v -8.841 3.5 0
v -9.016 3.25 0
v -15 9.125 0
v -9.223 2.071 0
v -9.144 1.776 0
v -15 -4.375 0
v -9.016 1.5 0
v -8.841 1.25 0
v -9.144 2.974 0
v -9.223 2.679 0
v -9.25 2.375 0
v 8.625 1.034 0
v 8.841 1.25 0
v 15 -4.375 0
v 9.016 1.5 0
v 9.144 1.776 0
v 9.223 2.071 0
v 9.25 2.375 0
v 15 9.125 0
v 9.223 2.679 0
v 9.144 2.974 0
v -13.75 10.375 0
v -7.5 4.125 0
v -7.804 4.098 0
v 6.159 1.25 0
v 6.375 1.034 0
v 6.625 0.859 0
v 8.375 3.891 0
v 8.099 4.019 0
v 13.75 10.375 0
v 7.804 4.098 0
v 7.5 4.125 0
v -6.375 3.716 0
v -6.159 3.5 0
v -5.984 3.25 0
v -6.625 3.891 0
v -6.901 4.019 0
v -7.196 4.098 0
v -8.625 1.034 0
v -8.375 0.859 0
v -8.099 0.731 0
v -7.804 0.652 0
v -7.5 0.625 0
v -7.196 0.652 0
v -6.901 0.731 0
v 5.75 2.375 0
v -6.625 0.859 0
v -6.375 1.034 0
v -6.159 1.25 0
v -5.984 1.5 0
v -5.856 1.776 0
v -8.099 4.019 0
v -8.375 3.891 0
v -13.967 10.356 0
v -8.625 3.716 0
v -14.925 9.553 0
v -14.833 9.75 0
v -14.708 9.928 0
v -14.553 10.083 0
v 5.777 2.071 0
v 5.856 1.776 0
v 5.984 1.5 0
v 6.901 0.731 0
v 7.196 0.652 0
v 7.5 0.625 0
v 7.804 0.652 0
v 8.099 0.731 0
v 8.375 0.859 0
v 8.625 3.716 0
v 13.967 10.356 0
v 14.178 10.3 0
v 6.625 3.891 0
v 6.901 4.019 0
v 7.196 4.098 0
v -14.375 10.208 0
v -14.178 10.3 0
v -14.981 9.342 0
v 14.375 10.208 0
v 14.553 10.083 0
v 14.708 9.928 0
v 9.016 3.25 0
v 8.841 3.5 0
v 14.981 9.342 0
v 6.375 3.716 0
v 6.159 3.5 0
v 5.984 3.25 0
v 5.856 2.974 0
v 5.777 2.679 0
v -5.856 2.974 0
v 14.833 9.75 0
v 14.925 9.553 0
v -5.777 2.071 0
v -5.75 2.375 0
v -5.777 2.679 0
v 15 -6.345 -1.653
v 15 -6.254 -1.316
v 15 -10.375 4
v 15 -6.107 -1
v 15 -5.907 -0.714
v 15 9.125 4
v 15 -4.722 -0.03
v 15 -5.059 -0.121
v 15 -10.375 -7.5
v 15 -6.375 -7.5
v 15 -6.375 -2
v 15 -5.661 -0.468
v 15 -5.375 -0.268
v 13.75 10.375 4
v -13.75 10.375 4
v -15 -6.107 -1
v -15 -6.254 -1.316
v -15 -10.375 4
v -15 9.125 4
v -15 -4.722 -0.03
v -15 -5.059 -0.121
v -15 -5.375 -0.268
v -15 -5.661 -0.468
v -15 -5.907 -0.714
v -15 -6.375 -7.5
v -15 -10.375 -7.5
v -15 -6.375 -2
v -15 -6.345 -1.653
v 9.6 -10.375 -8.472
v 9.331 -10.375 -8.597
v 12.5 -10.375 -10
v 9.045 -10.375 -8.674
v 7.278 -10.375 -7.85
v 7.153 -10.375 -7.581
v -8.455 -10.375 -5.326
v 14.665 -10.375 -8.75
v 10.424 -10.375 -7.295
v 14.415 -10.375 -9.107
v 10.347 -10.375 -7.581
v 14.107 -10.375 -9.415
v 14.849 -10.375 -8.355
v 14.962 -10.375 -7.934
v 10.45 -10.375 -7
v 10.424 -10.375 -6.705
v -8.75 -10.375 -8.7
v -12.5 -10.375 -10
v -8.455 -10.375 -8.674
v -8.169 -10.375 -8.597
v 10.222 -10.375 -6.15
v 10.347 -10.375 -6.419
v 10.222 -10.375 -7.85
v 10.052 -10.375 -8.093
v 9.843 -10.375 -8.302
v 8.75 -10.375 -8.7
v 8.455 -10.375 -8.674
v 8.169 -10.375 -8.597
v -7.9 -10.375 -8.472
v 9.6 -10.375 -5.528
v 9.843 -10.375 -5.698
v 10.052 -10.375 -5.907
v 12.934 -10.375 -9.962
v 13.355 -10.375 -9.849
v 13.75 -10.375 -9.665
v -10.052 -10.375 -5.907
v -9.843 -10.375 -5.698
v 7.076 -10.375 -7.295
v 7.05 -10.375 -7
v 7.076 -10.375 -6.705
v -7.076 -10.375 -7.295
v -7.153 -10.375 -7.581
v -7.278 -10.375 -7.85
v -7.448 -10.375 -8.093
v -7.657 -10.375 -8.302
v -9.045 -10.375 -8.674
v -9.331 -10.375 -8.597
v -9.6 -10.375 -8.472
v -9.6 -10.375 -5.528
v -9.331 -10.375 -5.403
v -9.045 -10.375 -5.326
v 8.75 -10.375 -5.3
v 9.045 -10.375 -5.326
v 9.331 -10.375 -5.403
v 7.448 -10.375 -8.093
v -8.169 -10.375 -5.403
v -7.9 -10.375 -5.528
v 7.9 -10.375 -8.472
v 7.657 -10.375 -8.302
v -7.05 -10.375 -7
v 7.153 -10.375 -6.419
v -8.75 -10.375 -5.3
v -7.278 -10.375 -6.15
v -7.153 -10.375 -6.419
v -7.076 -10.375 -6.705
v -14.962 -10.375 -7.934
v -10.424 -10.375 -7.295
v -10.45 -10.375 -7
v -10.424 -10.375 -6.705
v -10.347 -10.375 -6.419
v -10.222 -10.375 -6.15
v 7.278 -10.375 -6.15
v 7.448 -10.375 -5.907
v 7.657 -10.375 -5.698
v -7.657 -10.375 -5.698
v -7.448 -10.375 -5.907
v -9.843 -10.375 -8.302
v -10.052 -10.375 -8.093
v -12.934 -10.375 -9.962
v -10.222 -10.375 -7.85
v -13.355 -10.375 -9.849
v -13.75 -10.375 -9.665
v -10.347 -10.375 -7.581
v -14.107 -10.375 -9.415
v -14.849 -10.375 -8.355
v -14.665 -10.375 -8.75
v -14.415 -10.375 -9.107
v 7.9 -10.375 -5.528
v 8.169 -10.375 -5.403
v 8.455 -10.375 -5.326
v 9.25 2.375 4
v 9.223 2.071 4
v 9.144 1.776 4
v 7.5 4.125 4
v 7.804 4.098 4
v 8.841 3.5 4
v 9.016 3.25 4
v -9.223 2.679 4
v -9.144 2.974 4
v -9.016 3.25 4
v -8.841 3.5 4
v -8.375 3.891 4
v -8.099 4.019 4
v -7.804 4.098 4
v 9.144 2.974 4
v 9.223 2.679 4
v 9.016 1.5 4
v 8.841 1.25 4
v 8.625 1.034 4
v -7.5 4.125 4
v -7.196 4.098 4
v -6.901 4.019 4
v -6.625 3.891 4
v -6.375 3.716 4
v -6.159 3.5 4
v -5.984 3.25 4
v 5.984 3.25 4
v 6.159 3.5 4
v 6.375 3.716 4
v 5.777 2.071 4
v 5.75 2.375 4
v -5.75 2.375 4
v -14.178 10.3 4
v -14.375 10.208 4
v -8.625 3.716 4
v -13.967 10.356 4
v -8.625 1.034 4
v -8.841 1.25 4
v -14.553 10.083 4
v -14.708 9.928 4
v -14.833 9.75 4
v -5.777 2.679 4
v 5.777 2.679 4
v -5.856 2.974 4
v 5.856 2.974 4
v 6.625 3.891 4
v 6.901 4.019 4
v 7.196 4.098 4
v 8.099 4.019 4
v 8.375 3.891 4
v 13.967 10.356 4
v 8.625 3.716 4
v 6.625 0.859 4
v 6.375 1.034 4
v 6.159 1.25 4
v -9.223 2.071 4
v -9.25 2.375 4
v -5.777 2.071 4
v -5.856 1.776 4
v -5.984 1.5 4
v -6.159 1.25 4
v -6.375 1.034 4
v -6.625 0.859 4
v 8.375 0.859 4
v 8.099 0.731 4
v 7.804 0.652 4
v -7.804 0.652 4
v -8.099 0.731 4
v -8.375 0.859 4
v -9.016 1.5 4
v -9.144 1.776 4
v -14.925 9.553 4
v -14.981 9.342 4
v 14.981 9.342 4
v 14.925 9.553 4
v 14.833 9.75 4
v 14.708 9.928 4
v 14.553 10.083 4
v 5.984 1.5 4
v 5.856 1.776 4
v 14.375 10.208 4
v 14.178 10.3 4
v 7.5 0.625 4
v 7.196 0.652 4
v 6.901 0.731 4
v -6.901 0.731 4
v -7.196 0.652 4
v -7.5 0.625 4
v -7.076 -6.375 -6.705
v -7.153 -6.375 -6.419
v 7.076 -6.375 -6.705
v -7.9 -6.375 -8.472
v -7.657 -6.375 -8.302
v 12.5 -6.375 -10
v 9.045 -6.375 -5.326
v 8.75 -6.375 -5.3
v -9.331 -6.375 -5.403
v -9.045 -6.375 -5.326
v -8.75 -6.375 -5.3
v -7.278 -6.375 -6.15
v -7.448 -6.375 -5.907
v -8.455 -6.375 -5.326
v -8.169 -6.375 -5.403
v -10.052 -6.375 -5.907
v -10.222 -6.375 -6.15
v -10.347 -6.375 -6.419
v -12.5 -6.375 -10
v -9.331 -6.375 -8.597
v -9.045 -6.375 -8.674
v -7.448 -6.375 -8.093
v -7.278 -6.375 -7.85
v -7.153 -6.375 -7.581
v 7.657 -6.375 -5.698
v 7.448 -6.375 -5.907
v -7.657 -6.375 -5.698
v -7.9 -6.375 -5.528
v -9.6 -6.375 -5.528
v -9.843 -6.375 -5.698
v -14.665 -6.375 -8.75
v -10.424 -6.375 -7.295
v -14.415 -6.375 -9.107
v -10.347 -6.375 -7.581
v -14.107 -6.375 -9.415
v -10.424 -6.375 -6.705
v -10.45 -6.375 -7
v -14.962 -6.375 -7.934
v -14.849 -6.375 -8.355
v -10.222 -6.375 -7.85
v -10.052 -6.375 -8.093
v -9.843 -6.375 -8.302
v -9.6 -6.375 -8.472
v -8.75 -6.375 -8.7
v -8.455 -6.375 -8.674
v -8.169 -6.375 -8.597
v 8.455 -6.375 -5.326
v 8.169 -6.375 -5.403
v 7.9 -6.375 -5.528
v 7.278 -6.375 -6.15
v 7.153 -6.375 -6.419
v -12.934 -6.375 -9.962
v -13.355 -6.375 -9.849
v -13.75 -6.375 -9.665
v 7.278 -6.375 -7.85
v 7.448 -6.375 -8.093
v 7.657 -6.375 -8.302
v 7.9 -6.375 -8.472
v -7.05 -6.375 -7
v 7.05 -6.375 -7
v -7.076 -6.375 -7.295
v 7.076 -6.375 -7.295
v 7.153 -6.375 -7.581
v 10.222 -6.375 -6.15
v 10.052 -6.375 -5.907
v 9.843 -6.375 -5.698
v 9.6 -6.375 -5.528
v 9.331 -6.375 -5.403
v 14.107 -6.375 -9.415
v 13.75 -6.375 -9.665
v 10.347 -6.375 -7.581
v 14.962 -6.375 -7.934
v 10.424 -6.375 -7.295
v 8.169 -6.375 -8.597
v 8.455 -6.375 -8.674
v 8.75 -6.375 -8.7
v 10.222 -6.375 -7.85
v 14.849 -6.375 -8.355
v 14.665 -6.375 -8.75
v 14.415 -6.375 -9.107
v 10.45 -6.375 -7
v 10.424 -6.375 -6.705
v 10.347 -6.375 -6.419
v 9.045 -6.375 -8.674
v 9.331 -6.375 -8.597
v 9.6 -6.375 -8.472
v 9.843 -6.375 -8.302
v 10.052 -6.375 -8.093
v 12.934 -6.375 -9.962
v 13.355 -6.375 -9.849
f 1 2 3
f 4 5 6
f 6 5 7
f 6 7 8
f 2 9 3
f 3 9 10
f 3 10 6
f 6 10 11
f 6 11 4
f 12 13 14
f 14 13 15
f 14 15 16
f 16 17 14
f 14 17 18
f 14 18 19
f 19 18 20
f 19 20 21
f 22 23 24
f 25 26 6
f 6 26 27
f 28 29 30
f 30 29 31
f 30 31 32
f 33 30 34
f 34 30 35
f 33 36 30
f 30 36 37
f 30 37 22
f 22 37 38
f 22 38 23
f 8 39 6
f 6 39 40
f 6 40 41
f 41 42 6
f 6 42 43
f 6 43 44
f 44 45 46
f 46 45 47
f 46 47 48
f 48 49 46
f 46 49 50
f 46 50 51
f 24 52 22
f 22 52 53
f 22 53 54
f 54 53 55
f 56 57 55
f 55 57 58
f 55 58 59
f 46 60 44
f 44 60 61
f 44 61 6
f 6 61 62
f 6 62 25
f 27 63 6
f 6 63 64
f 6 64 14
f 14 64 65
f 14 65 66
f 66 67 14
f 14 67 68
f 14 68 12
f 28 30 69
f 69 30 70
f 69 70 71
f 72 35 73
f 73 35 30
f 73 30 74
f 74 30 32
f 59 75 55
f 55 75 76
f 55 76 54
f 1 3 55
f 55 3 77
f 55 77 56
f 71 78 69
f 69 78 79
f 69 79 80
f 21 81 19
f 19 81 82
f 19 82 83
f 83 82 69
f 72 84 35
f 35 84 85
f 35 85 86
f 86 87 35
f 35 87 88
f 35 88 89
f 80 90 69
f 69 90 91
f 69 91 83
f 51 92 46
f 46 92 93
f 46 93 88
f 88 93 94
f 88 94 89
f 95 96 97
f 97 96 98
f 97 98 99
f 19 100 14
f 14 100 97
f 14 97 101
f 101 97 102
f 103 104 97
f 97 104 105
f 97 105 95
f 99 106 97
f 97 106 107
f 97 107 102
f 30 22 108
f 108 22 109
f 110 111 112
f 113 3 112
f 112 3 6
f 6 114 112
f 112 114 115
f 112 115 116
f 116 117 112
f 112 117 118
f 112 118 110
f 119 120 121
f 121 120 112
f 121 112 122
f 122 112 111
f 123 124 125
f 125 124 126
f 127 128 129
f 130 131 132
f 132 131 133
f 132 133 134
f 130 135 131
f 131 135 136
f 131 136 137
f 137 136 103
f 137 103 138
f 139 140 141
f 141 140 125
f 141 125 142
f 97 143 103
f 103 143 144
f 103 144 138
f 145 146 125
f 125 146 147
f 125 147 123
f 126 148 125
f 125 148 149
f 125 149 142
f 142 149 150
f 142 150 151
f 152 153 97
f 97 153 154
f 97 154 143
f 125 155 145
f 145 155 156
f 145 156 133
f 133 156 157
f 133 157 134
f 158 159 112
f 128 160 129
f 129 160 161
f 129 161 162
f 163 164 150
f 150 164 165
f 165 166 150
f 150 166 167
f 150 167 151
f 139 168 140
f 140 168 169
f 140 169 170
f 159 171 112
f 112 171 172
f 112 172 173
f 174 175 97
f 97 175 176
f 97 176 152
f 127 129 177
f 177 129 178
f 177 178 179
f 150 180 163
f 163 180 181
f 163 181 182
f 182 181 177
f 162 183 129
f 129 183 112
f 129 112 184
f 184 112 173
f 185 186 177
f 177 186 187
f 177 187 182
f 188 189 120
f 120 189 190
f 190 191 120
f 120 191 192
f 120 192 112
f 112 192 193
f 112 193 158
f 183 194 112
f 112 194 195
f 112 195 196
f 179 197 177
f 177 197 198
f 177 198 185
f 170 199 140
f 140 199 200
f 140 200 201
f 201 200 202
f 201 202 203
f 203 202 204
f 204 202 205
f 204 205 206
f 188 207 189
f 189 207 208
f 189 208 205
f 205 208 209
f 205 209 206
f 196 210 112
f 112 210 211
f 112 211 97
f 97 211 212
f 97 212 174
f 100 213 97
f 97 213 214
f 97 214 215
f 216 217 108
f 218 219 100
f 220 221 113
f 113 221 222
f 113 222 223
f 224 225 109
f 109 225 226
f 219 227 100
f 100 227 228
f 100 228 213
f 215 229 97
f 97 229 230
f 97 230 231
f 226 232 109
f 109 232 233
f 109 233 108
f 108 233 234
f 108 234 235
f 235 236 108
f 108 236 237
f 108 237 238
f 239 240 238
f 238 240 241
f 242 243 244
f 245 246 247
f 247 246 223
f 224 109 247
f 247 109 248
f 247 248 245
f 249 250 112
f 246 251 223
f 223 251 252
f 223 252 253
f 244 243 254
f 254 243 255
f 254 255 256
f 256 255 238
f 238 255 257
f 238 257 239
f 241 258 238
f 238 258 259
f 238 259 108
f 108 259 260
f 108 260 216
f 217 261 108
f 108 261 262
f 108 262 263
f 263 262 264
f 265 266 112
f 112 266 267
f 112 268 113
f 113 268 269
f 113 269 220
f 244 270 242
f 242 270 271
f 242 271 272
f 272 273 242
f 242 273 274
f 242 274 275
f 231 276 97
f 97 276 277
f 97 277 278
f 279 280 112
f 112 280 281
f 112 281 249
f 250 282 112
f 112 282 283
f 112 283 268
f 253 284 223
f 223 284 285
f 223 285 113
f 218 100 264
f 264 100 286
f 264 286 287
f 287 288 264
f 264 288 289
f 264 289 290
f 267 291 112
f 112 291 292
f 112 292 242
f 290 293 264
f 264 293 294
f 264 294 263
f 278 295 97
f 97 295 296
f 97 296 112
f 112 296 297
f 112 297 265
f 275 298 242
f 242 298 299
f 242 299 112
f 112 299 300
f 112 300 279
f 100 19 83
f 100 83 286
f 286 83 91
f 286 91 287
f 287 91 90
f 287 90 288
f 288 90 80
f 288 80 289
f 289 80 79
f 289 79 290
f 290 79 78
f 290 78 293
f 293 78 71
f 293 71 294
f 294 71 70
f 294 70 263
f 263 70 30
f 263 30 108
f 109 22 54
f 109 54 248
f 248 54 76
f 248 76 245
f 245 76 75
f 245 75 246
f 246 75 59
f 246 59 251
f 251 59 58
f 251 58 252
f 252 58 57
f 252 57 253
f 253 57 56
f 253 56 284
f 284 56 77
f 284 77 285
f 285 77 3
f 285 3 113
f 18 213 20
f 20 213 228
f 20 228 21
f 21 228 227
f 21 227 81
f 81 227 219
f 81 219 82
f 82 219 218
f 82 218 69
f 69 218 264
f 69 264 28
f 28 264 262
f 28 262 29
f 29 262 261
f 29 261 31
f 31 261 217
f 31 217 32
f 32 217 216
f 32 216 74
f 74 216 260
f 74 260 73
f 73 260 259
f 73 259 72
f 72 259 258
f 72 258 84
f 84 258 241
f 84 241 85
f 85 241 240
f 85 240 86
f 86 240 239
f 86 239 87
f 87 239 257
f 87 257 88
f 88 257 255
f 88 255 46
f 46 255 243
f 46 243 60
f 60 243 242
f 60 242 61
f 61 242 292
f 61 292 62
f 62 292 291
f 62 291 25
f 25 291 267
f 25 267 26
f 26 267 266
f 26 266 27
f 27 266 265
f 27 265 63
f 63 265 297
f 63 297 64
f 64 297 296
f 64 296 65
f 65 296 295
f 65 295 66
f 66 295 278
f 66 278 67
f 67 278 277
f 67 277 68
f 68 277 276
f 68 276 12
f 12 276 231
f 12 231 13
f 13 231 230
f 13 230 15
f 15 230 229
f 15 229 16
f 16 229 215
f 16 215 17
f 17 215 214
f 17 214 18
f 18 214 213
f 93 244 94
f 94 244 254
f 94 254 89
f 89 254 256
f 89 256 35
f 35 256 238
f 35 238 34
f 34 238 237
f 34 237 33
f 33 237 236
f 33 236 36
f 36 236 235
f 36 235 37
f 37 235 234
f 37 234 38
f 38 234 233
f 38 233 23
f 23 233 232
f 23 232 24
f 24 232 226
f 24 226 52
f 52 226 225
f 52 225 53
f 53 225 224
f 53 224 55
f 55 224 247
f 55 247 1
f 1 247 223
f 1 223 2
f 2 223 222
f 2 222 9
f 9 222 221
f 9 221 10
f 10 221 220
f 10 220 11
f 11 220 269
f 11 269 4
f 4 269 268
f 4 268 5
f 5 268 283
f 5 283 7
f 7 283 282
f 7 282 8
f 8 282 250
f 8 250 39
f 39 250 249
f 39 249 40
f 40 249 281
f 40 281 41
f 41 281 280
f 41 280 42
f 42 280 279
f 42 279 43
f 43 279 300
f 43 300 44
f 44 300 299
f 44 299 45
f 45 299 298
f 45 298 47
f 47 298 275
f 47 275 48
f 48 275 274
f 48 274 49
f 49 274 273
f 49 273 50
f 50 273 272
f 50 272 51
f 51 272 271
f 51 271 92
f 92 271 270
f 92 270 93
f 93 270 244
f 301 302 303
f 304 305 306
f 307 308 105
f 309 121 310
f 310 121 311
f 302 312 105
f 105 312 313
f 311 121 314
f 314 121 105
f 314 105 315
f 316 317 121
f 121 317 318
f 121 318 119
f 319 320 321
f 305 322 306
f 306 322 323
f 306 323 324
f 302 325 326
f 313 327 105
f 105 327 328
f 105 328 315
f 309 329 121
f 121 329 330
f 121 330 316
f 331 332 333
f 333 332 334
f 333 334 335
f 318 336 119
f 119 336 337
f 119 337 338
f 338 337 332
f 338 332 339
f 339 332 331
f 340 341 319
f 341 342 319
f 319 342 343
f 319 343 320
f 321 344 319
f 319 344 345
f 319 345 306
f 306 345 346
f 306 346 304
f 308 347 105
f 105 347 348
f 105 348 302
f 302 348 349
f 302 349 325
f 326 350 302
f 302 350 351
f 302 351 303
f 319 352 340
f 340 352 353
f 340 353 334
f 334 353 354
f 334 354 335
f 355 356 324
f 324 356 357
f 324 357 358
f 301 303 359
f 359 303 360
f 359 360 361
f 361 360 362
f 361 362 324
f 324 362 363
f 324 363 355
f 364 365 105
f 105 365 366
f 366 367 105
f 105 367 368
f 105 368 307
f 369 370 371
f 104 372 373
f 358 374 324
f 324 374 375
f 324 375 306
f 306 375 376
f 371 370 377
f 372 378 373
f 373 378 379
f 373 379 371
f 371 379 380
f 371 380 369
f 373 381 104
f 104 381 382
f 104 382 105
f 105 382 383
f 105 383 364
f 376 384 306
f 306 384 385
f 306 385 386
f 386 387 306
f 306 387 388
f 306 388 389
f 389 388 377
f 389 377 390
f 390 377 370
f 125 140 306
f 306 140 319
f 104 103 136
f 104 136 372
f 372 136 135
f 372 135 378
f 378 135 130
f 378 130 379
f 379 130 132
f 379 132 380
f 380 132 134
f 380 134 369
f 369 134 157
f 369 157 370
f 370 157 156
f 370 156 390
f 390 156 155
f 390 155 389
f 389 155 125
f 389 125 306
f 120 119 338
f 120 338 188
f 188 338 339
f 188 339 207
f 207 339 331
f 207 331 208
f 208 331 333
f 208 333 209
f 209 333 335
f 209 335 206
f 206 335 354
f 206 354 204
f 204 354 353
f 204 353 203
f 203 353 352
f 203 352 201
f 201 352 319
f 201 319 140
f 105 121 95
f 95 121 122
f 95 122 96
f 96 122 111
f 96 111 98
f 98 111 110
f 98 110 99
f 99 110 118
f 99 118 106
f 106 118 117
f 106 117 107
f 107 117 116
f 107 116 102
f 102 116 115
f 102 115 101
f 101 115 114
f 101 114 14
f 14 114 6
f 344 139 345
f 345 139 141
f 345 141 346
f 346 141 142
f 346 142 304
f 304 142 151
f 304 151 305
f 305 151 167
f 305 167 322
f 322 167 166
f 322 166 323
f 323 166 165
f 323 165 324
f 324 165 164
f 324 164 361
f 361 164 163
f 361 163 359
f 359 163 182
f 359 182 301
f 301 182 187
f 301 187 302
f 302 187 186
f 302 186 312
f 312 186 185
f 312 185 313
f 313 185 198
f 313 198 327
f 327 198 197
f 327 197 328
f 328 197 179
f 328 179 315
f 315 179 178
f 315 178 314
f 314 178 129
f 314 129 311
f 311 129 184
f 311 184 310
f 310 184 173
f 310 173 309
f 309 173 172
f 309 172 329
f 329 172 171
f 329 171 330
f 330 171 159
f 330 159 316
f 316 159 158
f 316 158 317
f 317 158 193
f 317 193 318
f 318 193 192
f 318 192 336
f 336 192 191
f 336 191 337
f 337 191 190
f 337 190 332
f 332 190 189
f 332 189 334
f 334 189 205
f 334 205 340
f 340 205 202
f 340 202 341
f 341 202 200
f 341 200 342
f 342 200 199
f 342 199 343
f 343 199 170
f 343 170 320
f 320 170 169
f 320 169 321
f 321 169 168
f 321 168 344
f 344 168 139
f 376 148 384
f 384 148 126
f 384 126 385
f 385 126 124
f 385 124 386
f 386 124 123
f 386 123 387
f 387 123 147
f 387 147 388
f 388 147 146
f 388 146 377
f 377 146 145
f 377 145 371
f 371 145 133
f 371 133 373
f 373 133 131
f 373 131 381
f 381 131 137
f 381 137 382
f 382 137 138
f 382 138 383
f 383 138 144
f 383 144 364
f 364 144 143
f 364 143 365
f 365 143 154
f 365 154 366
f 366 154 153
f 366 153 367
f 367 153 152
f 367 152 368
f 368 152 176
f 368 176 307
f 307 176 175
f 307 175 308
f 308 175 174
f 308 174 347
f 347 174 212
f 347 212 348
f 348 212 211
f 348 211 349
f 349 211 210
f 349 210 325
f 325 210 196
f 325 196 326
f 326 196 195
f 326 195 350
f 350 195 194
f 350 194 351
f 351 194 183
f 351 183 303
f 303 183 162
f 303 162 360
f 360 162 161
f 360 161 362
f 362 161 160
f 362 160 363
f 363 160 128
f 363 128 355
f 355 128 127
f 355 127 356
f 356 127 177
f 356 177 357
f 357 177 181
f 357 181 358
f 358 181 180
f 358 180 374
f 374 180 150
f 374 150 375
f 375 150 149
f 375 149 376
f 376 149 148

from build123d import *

# Parameters (mm, degrees)
SKETCH1_W                = 30
SKETCH1_H                = 20.75
BOSS_EXTRUDE1_DEPTH      = 4
FILLET1_R                = 1.25
SKETCH3_R                = 1.75
CUT_EXTRUDE1_DEPTH       = 10
SKETCH4_W                = 30
SKETCH4_H                = 4
BOSS_EXTRUDE2_DEPTH      = 10
FILLET2_R                = 2.5
FILLET3_R                = 2
M3_CLEARANCE_HOLE1_D     = 3.4
M3_CLEARANCE_HOLE1_DEPTH = 16
M3_CLEARANCE_HOLE1_TIP   = 1.021463052


with BuildPart() as part:
    # Sketch1 → Boss-Extrude1 (new body)
    with BuildSketch(Plane.XY):
        Rectangle(SKETCH1_W, SKETCH1_H)
    extrude(amount=BOSS_EXTRUDE1_DEPTH)

    # Fillet1
    fillet1_edges = [part.edges().sort_by_distance(p)[0] for p in [
        (-15, 10.375, 2),
        (15, 10.375, 2),
    ]]
    fillet(fillet1_edges, radius=FILLET1_R)

    # Sketch3 → Cut-Extrude1 (cut)
    with BuildSketch(Plane.XY.offset(4)):
        with Locations((-7.5, 2.375)):
            Circle(SKETCH3_R)
        with Locations((7.5, 2.375)):
            Circle(SKETCH3_R)
    extrude(amount=-CUT_EXTRUDE1_DEPTH, mode=Mode.SUBTRACT)

    # Sketch4 → Boss-Extrude2 (add)
    with BuildSketch(Plane(origin=(0, 0, 0), x_dir=(-1, 0, 0), z_dir=(0, 0, -1))):
        with Locations((0, -8.375)):
            Rectangle(SKETCH4_W, SKETCH4_H)
    extrude(amount=BOSS_EXTRUDE2_DEPTH)

    # Fillet2
    fillet2_edges = [part.edges().sort_by_distance(p)[0] for p in [
        (15, -8.375, -10),
        (-15, -8.375, -10),
    ]]
    fillet(fillet2_edges, radius=FILLET2_R)

    # Fillet3
    fillet3_edges = [part.edges().sort_by_distance(p)[0] for p in [
        (0, -6.375, 0),
    ]]
    fillet(fillet3_edges, radius=FILLET3_R)

    # M3 Clearance Hole1
    with Locations(Plane(origin=(0, -10.375, 0), x_dir=(-1, 0, 0), z_dir=(0, -1, 0))):
        with Locations((-8.75, 7), (8.75, 7)):
            Hole(M3_CLEARANCE_HOLE1_D / 2, depth=M3_CLEARANCE_HOLE1_DEPTH)
            with Locations((0, 0, -(M3_CLEARANCE_HOLE1_DEPTH + M3_CLEARANCE_HOLE1_TIP / 2))):  # 118° drill point
                Cone(0, M3_CLEARANCE_HOLE1_D / 2, M3_CLEARANCE_HOLE1_TIP, mode=Mode.SUBTRACT)


solid = part.part
